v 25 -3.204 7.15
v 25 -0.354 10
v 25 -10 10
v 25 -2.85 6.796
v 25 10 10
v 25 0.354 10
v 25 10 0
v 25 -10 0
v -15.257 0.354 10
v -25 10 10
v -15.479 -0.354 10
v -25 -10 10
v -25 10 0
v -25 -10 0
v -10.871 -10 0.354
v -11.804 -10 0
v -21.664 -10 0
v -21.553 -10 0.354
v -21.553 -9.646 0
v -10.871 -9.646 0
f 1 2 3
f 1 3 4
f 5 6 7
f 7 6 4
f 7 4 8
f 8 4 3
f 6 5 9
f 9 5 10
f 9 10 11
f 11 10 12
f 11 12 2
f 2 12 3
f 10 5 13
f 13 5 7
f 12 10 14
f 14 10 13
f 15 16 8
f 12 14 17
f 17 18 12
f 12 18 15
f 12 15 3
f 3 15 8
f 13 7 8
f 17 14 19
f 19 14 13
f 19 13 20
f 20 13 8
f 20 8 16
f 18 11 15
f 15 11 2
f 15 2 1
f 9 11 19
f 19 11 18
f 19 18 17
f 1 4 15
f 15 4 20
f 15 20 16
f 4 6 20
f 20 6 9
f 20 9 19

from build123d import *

# Parameters (mm, degrees)
SKETCH1_W           = 50
SKETCH1_H           = 20
BOSS_EXTRUDE1_DEPTH = 10
CUT_EXTRUDE1_DEPTH  = 0.25


with BuildPart() as part:
    # Sketch1 → Boss-Extrude1 (new body)
    with BuildSketch(Plane.XY):
        Rectangle(SKETCH1_W, SKETCH1_H)
    extrude(amount=BOSS_EXTRUDE1_DEPTH)

    # Sketch2 → Cut-Extrude1 (cut, symmetric)
    with BuildSketch(Plane(origin=(0, -5, 5), x_dir=(1, 0, 0), z_dir=(0, -0.707106781, 0.707106781))):
        Polygon((-23, -10.071067812), (35.375550351, 5.570613762), (29.163893269, 28.752833593), (-10.439065609, 18.141252744), align=None)
    extrude(amount=CUT_EXTRUDE1_DEPTH, both=True, mode=Mode.SUBTRACT)


solid = part.part
